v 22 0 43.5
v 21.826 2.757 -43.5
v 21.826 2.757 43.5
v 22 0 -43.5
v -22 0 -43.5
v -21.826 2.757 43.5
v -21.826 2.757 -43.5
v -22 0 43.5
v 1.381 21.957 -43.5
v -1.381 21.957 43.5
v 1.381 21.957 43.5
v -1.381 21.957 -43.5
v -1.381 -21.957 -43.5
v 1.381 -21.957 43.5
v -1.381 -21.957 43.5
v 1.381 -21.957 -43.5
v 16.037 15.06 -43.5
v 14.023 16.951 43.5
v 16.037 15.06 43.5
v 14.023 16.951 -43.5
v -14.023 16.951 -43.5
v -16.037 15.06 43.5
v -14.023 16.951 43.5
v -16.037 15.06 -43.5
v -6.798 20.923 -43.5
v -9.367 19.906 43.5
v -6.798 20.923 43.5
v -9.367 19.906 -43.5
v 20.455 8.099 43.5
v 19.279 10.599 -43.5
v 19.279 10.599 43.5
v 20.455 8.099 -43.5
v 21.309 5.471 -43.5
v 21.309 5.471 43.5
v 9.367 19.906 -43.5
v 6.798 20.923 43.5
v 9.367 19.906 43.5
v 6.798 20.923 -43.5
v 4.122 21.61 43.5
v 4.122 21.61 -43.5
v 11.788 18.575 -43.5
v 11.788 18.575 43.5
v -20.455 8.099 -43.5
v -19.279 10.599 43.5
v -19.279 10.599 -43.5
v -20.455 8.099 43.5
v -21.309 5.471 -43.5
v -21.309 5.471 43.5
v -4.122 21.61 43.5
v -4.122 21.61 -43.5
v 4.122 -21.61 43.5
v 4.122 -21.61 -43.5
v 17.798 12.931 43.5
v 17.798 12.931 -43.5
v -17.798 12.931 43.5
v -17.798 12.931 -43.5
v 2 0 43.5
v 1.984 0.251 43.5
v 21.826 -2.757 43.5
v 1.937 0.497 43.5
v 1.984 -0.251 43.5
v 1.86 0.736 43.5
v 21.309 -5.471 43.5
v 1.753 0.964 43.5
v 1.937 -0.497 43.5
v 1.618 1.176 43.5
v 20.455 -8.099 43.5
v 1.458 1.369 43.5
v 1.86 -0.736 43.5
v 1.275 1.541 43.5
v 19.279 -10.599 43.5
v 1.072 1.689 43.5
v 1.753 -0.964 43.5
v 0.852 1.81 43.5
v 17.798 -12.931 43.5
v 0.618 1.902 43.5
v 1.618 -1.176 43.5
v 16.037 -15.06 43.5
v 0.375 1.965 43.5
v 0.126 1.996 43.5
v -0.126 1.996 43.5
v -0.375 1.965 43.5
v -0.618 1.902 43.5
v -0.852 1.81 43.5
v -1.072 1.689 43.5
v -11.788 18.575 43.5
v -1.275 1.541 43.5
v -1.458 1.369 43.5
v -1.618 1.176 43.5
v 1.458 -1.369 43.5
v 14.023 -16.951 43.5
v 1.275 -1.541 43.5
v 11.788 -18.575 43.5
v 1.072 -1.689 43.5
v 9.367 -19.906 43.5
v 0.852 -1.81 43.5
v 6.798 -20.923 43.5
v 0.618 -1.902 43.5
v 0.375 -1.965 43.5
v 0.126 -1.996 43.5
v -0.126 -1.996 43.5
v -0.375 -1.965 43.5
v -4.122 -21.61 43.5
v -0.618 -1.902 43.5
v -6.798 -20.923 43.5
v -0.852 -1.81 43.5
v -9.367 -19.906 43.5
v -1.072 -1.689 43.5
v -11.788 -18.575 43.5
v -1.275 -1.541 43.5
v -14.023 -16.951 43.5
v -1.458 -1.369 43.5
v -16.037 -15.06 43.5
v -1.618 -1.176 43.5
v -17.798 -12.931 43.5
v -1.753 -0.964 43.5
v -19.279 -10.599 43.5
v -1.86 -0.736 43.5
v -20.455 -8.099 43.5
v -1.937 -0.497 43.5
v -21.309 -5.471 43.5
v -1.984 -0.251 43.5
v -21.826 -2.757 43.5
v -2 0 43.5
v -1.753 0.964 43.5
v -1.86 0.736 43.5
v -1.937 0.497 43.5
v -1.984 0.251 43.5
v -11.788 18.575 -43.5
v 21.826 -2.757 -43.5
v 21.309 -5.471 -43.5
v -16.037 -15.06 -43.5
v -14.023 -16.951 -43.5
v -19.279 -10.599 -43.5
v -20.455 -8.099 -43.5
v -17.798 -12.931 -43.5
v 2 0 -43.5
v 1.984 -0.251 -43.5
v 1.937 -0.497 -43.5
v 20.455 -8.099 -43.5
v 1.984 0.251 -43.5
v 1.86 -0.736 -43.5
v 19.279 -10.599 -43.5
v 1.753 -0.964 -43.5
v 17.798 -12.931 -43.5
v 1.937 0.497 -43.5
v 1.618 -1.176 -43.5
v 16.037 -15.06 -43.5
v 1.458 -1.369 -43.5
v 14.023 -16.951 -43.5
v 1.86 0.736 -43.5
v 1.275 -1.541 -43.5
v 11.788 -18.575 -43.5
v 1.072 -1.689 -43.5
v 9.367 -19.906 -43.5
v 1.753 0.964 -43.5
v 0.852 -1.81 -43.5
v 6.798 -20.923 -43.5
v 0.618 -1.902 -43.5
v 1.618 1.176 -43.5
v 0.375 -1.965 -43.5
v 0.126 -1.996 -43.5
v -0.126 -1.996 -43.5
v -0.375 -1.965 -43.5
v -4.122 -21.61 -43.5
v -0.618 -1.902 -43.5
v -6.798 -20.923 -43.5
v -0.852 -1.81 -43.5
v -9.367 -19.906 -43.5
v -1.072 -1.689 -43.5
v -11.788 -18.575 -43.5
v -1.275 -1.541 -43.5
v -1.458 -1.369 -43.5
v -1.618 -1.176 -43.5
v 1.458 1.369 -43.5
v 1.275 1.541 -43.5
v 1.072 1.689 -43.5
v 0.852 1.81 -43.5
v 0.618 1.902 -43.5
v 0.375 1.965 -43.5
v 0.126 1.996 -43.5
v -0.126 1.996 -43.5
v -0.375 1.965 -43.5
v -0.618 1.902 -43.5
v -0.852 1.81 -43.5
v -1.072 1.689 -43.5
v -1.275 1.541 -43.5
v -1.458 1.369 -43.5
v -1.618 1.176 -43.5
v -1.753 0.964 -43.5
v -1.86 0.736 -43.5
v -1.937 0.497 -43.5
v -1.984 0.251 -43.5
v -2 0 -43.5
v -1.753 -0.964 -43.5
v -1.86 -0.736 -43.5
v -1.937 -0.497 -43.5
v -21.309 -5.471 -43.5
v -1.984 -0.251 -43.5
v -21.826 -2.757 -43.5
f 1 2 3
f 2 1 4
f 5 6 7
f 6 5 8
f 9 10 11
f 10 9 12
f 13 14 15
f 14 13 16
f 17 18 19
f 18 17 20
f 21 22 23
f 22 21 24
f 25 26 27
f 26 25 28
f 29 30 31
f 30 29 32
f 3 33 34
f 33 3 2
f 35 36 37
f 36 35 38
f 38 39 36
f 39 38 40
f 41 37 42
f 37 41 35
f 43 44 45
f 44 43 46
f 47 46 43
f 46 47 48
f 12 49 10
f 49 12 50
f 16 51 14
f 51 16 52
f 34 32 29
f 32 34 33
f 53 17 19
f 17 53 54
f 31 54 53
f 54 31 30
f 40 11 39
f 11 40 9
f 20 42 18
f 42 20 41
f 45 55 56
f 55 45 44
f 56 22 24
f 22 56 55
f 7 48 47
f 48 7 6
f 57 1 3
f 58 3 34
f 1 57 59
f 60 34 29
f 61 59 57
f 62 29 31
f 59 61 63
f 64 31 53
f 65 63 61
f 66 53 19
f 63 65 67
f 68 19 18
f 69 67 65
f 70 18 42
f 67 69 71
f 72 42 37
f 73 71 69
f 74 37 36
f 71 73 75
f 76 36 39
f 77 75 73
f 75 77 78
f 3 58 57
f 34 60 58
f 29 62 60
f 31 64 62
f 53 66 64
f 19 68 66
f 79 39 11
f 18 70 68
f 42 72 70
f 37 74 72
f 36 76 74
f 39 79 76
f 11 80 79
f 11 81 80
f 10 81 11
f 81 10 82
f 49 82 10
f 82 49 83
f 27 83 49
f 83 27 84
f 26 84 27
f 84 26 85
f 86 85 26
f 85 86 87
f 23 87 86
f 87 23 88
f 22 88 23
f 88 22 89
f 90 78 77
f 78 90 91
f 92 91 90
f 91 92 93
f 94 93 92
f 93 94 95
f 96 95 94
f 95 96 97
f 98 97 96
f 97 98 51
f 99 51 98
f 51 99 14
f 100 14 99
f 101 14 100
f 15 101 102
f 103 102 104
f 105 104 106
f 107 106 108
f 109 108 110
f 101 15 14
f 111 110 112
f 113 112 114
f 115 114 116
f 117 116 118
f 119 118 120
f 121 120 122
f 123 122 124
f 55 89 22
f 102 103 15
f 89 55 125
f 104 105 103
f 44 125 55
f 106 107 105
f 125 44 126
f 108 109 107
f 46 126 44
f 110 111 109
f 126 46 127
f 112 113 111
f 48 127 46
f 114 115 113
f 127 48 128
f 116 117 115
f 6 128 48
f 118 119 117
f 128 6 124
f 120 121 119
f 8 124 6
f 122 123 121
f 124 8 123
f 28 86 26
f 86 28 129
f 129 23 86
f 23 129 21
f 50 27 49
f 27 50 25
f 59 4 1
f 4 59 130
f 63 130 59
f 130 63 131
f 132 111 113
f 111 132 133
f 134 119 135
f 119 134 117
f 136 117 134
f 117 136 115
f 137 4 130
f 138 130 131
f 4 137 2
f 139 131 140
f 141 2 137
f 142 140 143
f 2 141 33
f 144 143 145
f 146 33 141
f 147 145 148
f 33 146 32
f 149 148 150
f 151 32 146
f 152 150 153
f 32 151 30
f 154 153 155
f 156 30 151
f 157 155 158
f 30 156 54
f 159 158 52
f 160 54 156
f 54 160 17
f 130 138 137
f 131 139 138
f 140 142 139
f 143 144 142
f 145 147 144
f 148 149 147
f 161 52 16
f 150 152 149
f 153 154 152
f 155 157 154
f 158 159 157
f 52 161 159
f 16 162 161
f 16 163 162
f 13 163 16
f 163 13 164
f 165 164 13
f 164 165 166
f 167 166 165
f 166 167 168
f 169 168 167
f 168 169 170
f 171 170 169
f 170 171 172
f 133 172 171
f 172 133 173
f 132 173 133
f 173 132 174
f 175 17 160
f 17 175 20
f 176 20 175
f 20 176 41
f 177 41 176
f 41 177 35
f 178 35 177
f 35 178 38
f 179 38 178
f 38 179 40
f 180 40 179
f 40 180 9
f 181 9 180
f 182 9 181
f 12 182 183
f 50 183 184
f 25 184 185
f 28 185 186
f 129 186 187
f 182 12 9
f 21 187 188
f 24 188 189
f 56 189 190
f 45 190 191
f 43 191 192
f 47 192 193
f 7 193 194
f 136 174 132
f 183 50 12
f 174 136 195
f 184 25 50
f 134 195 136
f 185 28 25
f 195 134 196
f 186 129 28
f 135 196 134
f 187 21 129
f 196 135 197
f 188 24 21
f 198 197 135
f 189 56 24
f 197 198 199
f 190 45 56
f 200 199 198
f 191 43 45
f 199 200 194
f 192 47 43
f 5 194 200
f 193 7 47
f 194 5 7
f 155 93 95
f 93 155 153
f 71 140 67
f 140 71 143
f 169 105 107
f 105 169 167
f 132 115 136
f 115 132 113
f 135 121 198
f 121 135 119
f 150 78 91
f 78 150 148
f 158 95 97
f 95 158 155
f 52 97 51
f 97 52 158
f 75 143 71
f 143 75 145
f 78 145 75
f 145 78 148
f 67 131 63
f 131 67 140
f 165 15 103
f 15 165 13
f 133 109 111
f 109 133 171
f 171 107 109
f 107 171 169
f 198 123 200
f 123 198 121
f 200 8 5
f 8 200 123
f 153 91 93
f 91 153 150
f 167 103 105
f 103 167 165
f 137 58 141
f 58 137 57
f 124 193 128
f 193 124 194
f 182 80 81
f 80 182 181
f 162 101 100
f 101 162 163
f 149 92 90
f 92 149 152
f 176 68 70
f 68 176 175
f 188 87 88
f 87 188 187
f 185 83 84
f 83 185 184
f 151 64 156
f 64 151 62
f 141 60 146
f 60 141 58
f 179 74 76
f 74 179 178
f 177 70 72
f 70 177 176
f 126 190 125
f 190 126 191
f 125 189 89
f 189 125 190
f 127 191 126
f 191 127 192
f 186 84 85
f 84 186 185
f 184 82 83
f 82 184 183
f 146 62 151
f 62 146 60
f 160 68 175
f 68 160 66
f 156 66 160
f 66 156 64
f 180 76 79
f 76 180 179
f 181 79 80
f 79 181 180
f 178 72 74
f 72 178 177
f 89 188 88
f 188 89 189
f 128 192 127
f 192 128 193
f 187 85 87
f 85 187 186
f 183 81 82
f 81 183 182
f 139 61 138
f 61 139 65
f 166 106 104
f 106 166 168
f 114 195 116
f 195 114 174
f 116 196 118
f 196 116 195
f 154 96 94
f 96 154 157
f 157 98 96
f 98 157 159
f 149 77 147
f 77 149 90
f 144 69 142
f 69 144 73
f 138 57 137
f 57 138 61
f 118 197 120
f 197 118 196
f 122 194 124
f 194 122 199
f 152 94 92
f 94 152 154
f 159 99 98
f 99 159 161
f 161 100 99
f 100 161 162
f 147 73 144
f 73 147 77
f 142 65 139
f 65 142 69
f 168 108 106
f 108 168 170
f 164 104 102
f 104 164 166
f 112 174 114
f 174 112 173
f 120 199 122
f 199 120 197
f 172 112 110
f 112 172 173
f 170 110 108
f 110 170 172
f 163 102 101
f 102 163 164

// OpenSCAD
$fn = 50;


difference() {
	union() {
		translate(v = [0, 0, -43.5000000000]) {
			cylinder(h = 87, r = 22.0000000000);
		}
	}
	union() {
		translate(v = [0, 0, -100.0000000000]) {
			cylinder(h = 200, r = 2.0000000000);
		}
	}
}
